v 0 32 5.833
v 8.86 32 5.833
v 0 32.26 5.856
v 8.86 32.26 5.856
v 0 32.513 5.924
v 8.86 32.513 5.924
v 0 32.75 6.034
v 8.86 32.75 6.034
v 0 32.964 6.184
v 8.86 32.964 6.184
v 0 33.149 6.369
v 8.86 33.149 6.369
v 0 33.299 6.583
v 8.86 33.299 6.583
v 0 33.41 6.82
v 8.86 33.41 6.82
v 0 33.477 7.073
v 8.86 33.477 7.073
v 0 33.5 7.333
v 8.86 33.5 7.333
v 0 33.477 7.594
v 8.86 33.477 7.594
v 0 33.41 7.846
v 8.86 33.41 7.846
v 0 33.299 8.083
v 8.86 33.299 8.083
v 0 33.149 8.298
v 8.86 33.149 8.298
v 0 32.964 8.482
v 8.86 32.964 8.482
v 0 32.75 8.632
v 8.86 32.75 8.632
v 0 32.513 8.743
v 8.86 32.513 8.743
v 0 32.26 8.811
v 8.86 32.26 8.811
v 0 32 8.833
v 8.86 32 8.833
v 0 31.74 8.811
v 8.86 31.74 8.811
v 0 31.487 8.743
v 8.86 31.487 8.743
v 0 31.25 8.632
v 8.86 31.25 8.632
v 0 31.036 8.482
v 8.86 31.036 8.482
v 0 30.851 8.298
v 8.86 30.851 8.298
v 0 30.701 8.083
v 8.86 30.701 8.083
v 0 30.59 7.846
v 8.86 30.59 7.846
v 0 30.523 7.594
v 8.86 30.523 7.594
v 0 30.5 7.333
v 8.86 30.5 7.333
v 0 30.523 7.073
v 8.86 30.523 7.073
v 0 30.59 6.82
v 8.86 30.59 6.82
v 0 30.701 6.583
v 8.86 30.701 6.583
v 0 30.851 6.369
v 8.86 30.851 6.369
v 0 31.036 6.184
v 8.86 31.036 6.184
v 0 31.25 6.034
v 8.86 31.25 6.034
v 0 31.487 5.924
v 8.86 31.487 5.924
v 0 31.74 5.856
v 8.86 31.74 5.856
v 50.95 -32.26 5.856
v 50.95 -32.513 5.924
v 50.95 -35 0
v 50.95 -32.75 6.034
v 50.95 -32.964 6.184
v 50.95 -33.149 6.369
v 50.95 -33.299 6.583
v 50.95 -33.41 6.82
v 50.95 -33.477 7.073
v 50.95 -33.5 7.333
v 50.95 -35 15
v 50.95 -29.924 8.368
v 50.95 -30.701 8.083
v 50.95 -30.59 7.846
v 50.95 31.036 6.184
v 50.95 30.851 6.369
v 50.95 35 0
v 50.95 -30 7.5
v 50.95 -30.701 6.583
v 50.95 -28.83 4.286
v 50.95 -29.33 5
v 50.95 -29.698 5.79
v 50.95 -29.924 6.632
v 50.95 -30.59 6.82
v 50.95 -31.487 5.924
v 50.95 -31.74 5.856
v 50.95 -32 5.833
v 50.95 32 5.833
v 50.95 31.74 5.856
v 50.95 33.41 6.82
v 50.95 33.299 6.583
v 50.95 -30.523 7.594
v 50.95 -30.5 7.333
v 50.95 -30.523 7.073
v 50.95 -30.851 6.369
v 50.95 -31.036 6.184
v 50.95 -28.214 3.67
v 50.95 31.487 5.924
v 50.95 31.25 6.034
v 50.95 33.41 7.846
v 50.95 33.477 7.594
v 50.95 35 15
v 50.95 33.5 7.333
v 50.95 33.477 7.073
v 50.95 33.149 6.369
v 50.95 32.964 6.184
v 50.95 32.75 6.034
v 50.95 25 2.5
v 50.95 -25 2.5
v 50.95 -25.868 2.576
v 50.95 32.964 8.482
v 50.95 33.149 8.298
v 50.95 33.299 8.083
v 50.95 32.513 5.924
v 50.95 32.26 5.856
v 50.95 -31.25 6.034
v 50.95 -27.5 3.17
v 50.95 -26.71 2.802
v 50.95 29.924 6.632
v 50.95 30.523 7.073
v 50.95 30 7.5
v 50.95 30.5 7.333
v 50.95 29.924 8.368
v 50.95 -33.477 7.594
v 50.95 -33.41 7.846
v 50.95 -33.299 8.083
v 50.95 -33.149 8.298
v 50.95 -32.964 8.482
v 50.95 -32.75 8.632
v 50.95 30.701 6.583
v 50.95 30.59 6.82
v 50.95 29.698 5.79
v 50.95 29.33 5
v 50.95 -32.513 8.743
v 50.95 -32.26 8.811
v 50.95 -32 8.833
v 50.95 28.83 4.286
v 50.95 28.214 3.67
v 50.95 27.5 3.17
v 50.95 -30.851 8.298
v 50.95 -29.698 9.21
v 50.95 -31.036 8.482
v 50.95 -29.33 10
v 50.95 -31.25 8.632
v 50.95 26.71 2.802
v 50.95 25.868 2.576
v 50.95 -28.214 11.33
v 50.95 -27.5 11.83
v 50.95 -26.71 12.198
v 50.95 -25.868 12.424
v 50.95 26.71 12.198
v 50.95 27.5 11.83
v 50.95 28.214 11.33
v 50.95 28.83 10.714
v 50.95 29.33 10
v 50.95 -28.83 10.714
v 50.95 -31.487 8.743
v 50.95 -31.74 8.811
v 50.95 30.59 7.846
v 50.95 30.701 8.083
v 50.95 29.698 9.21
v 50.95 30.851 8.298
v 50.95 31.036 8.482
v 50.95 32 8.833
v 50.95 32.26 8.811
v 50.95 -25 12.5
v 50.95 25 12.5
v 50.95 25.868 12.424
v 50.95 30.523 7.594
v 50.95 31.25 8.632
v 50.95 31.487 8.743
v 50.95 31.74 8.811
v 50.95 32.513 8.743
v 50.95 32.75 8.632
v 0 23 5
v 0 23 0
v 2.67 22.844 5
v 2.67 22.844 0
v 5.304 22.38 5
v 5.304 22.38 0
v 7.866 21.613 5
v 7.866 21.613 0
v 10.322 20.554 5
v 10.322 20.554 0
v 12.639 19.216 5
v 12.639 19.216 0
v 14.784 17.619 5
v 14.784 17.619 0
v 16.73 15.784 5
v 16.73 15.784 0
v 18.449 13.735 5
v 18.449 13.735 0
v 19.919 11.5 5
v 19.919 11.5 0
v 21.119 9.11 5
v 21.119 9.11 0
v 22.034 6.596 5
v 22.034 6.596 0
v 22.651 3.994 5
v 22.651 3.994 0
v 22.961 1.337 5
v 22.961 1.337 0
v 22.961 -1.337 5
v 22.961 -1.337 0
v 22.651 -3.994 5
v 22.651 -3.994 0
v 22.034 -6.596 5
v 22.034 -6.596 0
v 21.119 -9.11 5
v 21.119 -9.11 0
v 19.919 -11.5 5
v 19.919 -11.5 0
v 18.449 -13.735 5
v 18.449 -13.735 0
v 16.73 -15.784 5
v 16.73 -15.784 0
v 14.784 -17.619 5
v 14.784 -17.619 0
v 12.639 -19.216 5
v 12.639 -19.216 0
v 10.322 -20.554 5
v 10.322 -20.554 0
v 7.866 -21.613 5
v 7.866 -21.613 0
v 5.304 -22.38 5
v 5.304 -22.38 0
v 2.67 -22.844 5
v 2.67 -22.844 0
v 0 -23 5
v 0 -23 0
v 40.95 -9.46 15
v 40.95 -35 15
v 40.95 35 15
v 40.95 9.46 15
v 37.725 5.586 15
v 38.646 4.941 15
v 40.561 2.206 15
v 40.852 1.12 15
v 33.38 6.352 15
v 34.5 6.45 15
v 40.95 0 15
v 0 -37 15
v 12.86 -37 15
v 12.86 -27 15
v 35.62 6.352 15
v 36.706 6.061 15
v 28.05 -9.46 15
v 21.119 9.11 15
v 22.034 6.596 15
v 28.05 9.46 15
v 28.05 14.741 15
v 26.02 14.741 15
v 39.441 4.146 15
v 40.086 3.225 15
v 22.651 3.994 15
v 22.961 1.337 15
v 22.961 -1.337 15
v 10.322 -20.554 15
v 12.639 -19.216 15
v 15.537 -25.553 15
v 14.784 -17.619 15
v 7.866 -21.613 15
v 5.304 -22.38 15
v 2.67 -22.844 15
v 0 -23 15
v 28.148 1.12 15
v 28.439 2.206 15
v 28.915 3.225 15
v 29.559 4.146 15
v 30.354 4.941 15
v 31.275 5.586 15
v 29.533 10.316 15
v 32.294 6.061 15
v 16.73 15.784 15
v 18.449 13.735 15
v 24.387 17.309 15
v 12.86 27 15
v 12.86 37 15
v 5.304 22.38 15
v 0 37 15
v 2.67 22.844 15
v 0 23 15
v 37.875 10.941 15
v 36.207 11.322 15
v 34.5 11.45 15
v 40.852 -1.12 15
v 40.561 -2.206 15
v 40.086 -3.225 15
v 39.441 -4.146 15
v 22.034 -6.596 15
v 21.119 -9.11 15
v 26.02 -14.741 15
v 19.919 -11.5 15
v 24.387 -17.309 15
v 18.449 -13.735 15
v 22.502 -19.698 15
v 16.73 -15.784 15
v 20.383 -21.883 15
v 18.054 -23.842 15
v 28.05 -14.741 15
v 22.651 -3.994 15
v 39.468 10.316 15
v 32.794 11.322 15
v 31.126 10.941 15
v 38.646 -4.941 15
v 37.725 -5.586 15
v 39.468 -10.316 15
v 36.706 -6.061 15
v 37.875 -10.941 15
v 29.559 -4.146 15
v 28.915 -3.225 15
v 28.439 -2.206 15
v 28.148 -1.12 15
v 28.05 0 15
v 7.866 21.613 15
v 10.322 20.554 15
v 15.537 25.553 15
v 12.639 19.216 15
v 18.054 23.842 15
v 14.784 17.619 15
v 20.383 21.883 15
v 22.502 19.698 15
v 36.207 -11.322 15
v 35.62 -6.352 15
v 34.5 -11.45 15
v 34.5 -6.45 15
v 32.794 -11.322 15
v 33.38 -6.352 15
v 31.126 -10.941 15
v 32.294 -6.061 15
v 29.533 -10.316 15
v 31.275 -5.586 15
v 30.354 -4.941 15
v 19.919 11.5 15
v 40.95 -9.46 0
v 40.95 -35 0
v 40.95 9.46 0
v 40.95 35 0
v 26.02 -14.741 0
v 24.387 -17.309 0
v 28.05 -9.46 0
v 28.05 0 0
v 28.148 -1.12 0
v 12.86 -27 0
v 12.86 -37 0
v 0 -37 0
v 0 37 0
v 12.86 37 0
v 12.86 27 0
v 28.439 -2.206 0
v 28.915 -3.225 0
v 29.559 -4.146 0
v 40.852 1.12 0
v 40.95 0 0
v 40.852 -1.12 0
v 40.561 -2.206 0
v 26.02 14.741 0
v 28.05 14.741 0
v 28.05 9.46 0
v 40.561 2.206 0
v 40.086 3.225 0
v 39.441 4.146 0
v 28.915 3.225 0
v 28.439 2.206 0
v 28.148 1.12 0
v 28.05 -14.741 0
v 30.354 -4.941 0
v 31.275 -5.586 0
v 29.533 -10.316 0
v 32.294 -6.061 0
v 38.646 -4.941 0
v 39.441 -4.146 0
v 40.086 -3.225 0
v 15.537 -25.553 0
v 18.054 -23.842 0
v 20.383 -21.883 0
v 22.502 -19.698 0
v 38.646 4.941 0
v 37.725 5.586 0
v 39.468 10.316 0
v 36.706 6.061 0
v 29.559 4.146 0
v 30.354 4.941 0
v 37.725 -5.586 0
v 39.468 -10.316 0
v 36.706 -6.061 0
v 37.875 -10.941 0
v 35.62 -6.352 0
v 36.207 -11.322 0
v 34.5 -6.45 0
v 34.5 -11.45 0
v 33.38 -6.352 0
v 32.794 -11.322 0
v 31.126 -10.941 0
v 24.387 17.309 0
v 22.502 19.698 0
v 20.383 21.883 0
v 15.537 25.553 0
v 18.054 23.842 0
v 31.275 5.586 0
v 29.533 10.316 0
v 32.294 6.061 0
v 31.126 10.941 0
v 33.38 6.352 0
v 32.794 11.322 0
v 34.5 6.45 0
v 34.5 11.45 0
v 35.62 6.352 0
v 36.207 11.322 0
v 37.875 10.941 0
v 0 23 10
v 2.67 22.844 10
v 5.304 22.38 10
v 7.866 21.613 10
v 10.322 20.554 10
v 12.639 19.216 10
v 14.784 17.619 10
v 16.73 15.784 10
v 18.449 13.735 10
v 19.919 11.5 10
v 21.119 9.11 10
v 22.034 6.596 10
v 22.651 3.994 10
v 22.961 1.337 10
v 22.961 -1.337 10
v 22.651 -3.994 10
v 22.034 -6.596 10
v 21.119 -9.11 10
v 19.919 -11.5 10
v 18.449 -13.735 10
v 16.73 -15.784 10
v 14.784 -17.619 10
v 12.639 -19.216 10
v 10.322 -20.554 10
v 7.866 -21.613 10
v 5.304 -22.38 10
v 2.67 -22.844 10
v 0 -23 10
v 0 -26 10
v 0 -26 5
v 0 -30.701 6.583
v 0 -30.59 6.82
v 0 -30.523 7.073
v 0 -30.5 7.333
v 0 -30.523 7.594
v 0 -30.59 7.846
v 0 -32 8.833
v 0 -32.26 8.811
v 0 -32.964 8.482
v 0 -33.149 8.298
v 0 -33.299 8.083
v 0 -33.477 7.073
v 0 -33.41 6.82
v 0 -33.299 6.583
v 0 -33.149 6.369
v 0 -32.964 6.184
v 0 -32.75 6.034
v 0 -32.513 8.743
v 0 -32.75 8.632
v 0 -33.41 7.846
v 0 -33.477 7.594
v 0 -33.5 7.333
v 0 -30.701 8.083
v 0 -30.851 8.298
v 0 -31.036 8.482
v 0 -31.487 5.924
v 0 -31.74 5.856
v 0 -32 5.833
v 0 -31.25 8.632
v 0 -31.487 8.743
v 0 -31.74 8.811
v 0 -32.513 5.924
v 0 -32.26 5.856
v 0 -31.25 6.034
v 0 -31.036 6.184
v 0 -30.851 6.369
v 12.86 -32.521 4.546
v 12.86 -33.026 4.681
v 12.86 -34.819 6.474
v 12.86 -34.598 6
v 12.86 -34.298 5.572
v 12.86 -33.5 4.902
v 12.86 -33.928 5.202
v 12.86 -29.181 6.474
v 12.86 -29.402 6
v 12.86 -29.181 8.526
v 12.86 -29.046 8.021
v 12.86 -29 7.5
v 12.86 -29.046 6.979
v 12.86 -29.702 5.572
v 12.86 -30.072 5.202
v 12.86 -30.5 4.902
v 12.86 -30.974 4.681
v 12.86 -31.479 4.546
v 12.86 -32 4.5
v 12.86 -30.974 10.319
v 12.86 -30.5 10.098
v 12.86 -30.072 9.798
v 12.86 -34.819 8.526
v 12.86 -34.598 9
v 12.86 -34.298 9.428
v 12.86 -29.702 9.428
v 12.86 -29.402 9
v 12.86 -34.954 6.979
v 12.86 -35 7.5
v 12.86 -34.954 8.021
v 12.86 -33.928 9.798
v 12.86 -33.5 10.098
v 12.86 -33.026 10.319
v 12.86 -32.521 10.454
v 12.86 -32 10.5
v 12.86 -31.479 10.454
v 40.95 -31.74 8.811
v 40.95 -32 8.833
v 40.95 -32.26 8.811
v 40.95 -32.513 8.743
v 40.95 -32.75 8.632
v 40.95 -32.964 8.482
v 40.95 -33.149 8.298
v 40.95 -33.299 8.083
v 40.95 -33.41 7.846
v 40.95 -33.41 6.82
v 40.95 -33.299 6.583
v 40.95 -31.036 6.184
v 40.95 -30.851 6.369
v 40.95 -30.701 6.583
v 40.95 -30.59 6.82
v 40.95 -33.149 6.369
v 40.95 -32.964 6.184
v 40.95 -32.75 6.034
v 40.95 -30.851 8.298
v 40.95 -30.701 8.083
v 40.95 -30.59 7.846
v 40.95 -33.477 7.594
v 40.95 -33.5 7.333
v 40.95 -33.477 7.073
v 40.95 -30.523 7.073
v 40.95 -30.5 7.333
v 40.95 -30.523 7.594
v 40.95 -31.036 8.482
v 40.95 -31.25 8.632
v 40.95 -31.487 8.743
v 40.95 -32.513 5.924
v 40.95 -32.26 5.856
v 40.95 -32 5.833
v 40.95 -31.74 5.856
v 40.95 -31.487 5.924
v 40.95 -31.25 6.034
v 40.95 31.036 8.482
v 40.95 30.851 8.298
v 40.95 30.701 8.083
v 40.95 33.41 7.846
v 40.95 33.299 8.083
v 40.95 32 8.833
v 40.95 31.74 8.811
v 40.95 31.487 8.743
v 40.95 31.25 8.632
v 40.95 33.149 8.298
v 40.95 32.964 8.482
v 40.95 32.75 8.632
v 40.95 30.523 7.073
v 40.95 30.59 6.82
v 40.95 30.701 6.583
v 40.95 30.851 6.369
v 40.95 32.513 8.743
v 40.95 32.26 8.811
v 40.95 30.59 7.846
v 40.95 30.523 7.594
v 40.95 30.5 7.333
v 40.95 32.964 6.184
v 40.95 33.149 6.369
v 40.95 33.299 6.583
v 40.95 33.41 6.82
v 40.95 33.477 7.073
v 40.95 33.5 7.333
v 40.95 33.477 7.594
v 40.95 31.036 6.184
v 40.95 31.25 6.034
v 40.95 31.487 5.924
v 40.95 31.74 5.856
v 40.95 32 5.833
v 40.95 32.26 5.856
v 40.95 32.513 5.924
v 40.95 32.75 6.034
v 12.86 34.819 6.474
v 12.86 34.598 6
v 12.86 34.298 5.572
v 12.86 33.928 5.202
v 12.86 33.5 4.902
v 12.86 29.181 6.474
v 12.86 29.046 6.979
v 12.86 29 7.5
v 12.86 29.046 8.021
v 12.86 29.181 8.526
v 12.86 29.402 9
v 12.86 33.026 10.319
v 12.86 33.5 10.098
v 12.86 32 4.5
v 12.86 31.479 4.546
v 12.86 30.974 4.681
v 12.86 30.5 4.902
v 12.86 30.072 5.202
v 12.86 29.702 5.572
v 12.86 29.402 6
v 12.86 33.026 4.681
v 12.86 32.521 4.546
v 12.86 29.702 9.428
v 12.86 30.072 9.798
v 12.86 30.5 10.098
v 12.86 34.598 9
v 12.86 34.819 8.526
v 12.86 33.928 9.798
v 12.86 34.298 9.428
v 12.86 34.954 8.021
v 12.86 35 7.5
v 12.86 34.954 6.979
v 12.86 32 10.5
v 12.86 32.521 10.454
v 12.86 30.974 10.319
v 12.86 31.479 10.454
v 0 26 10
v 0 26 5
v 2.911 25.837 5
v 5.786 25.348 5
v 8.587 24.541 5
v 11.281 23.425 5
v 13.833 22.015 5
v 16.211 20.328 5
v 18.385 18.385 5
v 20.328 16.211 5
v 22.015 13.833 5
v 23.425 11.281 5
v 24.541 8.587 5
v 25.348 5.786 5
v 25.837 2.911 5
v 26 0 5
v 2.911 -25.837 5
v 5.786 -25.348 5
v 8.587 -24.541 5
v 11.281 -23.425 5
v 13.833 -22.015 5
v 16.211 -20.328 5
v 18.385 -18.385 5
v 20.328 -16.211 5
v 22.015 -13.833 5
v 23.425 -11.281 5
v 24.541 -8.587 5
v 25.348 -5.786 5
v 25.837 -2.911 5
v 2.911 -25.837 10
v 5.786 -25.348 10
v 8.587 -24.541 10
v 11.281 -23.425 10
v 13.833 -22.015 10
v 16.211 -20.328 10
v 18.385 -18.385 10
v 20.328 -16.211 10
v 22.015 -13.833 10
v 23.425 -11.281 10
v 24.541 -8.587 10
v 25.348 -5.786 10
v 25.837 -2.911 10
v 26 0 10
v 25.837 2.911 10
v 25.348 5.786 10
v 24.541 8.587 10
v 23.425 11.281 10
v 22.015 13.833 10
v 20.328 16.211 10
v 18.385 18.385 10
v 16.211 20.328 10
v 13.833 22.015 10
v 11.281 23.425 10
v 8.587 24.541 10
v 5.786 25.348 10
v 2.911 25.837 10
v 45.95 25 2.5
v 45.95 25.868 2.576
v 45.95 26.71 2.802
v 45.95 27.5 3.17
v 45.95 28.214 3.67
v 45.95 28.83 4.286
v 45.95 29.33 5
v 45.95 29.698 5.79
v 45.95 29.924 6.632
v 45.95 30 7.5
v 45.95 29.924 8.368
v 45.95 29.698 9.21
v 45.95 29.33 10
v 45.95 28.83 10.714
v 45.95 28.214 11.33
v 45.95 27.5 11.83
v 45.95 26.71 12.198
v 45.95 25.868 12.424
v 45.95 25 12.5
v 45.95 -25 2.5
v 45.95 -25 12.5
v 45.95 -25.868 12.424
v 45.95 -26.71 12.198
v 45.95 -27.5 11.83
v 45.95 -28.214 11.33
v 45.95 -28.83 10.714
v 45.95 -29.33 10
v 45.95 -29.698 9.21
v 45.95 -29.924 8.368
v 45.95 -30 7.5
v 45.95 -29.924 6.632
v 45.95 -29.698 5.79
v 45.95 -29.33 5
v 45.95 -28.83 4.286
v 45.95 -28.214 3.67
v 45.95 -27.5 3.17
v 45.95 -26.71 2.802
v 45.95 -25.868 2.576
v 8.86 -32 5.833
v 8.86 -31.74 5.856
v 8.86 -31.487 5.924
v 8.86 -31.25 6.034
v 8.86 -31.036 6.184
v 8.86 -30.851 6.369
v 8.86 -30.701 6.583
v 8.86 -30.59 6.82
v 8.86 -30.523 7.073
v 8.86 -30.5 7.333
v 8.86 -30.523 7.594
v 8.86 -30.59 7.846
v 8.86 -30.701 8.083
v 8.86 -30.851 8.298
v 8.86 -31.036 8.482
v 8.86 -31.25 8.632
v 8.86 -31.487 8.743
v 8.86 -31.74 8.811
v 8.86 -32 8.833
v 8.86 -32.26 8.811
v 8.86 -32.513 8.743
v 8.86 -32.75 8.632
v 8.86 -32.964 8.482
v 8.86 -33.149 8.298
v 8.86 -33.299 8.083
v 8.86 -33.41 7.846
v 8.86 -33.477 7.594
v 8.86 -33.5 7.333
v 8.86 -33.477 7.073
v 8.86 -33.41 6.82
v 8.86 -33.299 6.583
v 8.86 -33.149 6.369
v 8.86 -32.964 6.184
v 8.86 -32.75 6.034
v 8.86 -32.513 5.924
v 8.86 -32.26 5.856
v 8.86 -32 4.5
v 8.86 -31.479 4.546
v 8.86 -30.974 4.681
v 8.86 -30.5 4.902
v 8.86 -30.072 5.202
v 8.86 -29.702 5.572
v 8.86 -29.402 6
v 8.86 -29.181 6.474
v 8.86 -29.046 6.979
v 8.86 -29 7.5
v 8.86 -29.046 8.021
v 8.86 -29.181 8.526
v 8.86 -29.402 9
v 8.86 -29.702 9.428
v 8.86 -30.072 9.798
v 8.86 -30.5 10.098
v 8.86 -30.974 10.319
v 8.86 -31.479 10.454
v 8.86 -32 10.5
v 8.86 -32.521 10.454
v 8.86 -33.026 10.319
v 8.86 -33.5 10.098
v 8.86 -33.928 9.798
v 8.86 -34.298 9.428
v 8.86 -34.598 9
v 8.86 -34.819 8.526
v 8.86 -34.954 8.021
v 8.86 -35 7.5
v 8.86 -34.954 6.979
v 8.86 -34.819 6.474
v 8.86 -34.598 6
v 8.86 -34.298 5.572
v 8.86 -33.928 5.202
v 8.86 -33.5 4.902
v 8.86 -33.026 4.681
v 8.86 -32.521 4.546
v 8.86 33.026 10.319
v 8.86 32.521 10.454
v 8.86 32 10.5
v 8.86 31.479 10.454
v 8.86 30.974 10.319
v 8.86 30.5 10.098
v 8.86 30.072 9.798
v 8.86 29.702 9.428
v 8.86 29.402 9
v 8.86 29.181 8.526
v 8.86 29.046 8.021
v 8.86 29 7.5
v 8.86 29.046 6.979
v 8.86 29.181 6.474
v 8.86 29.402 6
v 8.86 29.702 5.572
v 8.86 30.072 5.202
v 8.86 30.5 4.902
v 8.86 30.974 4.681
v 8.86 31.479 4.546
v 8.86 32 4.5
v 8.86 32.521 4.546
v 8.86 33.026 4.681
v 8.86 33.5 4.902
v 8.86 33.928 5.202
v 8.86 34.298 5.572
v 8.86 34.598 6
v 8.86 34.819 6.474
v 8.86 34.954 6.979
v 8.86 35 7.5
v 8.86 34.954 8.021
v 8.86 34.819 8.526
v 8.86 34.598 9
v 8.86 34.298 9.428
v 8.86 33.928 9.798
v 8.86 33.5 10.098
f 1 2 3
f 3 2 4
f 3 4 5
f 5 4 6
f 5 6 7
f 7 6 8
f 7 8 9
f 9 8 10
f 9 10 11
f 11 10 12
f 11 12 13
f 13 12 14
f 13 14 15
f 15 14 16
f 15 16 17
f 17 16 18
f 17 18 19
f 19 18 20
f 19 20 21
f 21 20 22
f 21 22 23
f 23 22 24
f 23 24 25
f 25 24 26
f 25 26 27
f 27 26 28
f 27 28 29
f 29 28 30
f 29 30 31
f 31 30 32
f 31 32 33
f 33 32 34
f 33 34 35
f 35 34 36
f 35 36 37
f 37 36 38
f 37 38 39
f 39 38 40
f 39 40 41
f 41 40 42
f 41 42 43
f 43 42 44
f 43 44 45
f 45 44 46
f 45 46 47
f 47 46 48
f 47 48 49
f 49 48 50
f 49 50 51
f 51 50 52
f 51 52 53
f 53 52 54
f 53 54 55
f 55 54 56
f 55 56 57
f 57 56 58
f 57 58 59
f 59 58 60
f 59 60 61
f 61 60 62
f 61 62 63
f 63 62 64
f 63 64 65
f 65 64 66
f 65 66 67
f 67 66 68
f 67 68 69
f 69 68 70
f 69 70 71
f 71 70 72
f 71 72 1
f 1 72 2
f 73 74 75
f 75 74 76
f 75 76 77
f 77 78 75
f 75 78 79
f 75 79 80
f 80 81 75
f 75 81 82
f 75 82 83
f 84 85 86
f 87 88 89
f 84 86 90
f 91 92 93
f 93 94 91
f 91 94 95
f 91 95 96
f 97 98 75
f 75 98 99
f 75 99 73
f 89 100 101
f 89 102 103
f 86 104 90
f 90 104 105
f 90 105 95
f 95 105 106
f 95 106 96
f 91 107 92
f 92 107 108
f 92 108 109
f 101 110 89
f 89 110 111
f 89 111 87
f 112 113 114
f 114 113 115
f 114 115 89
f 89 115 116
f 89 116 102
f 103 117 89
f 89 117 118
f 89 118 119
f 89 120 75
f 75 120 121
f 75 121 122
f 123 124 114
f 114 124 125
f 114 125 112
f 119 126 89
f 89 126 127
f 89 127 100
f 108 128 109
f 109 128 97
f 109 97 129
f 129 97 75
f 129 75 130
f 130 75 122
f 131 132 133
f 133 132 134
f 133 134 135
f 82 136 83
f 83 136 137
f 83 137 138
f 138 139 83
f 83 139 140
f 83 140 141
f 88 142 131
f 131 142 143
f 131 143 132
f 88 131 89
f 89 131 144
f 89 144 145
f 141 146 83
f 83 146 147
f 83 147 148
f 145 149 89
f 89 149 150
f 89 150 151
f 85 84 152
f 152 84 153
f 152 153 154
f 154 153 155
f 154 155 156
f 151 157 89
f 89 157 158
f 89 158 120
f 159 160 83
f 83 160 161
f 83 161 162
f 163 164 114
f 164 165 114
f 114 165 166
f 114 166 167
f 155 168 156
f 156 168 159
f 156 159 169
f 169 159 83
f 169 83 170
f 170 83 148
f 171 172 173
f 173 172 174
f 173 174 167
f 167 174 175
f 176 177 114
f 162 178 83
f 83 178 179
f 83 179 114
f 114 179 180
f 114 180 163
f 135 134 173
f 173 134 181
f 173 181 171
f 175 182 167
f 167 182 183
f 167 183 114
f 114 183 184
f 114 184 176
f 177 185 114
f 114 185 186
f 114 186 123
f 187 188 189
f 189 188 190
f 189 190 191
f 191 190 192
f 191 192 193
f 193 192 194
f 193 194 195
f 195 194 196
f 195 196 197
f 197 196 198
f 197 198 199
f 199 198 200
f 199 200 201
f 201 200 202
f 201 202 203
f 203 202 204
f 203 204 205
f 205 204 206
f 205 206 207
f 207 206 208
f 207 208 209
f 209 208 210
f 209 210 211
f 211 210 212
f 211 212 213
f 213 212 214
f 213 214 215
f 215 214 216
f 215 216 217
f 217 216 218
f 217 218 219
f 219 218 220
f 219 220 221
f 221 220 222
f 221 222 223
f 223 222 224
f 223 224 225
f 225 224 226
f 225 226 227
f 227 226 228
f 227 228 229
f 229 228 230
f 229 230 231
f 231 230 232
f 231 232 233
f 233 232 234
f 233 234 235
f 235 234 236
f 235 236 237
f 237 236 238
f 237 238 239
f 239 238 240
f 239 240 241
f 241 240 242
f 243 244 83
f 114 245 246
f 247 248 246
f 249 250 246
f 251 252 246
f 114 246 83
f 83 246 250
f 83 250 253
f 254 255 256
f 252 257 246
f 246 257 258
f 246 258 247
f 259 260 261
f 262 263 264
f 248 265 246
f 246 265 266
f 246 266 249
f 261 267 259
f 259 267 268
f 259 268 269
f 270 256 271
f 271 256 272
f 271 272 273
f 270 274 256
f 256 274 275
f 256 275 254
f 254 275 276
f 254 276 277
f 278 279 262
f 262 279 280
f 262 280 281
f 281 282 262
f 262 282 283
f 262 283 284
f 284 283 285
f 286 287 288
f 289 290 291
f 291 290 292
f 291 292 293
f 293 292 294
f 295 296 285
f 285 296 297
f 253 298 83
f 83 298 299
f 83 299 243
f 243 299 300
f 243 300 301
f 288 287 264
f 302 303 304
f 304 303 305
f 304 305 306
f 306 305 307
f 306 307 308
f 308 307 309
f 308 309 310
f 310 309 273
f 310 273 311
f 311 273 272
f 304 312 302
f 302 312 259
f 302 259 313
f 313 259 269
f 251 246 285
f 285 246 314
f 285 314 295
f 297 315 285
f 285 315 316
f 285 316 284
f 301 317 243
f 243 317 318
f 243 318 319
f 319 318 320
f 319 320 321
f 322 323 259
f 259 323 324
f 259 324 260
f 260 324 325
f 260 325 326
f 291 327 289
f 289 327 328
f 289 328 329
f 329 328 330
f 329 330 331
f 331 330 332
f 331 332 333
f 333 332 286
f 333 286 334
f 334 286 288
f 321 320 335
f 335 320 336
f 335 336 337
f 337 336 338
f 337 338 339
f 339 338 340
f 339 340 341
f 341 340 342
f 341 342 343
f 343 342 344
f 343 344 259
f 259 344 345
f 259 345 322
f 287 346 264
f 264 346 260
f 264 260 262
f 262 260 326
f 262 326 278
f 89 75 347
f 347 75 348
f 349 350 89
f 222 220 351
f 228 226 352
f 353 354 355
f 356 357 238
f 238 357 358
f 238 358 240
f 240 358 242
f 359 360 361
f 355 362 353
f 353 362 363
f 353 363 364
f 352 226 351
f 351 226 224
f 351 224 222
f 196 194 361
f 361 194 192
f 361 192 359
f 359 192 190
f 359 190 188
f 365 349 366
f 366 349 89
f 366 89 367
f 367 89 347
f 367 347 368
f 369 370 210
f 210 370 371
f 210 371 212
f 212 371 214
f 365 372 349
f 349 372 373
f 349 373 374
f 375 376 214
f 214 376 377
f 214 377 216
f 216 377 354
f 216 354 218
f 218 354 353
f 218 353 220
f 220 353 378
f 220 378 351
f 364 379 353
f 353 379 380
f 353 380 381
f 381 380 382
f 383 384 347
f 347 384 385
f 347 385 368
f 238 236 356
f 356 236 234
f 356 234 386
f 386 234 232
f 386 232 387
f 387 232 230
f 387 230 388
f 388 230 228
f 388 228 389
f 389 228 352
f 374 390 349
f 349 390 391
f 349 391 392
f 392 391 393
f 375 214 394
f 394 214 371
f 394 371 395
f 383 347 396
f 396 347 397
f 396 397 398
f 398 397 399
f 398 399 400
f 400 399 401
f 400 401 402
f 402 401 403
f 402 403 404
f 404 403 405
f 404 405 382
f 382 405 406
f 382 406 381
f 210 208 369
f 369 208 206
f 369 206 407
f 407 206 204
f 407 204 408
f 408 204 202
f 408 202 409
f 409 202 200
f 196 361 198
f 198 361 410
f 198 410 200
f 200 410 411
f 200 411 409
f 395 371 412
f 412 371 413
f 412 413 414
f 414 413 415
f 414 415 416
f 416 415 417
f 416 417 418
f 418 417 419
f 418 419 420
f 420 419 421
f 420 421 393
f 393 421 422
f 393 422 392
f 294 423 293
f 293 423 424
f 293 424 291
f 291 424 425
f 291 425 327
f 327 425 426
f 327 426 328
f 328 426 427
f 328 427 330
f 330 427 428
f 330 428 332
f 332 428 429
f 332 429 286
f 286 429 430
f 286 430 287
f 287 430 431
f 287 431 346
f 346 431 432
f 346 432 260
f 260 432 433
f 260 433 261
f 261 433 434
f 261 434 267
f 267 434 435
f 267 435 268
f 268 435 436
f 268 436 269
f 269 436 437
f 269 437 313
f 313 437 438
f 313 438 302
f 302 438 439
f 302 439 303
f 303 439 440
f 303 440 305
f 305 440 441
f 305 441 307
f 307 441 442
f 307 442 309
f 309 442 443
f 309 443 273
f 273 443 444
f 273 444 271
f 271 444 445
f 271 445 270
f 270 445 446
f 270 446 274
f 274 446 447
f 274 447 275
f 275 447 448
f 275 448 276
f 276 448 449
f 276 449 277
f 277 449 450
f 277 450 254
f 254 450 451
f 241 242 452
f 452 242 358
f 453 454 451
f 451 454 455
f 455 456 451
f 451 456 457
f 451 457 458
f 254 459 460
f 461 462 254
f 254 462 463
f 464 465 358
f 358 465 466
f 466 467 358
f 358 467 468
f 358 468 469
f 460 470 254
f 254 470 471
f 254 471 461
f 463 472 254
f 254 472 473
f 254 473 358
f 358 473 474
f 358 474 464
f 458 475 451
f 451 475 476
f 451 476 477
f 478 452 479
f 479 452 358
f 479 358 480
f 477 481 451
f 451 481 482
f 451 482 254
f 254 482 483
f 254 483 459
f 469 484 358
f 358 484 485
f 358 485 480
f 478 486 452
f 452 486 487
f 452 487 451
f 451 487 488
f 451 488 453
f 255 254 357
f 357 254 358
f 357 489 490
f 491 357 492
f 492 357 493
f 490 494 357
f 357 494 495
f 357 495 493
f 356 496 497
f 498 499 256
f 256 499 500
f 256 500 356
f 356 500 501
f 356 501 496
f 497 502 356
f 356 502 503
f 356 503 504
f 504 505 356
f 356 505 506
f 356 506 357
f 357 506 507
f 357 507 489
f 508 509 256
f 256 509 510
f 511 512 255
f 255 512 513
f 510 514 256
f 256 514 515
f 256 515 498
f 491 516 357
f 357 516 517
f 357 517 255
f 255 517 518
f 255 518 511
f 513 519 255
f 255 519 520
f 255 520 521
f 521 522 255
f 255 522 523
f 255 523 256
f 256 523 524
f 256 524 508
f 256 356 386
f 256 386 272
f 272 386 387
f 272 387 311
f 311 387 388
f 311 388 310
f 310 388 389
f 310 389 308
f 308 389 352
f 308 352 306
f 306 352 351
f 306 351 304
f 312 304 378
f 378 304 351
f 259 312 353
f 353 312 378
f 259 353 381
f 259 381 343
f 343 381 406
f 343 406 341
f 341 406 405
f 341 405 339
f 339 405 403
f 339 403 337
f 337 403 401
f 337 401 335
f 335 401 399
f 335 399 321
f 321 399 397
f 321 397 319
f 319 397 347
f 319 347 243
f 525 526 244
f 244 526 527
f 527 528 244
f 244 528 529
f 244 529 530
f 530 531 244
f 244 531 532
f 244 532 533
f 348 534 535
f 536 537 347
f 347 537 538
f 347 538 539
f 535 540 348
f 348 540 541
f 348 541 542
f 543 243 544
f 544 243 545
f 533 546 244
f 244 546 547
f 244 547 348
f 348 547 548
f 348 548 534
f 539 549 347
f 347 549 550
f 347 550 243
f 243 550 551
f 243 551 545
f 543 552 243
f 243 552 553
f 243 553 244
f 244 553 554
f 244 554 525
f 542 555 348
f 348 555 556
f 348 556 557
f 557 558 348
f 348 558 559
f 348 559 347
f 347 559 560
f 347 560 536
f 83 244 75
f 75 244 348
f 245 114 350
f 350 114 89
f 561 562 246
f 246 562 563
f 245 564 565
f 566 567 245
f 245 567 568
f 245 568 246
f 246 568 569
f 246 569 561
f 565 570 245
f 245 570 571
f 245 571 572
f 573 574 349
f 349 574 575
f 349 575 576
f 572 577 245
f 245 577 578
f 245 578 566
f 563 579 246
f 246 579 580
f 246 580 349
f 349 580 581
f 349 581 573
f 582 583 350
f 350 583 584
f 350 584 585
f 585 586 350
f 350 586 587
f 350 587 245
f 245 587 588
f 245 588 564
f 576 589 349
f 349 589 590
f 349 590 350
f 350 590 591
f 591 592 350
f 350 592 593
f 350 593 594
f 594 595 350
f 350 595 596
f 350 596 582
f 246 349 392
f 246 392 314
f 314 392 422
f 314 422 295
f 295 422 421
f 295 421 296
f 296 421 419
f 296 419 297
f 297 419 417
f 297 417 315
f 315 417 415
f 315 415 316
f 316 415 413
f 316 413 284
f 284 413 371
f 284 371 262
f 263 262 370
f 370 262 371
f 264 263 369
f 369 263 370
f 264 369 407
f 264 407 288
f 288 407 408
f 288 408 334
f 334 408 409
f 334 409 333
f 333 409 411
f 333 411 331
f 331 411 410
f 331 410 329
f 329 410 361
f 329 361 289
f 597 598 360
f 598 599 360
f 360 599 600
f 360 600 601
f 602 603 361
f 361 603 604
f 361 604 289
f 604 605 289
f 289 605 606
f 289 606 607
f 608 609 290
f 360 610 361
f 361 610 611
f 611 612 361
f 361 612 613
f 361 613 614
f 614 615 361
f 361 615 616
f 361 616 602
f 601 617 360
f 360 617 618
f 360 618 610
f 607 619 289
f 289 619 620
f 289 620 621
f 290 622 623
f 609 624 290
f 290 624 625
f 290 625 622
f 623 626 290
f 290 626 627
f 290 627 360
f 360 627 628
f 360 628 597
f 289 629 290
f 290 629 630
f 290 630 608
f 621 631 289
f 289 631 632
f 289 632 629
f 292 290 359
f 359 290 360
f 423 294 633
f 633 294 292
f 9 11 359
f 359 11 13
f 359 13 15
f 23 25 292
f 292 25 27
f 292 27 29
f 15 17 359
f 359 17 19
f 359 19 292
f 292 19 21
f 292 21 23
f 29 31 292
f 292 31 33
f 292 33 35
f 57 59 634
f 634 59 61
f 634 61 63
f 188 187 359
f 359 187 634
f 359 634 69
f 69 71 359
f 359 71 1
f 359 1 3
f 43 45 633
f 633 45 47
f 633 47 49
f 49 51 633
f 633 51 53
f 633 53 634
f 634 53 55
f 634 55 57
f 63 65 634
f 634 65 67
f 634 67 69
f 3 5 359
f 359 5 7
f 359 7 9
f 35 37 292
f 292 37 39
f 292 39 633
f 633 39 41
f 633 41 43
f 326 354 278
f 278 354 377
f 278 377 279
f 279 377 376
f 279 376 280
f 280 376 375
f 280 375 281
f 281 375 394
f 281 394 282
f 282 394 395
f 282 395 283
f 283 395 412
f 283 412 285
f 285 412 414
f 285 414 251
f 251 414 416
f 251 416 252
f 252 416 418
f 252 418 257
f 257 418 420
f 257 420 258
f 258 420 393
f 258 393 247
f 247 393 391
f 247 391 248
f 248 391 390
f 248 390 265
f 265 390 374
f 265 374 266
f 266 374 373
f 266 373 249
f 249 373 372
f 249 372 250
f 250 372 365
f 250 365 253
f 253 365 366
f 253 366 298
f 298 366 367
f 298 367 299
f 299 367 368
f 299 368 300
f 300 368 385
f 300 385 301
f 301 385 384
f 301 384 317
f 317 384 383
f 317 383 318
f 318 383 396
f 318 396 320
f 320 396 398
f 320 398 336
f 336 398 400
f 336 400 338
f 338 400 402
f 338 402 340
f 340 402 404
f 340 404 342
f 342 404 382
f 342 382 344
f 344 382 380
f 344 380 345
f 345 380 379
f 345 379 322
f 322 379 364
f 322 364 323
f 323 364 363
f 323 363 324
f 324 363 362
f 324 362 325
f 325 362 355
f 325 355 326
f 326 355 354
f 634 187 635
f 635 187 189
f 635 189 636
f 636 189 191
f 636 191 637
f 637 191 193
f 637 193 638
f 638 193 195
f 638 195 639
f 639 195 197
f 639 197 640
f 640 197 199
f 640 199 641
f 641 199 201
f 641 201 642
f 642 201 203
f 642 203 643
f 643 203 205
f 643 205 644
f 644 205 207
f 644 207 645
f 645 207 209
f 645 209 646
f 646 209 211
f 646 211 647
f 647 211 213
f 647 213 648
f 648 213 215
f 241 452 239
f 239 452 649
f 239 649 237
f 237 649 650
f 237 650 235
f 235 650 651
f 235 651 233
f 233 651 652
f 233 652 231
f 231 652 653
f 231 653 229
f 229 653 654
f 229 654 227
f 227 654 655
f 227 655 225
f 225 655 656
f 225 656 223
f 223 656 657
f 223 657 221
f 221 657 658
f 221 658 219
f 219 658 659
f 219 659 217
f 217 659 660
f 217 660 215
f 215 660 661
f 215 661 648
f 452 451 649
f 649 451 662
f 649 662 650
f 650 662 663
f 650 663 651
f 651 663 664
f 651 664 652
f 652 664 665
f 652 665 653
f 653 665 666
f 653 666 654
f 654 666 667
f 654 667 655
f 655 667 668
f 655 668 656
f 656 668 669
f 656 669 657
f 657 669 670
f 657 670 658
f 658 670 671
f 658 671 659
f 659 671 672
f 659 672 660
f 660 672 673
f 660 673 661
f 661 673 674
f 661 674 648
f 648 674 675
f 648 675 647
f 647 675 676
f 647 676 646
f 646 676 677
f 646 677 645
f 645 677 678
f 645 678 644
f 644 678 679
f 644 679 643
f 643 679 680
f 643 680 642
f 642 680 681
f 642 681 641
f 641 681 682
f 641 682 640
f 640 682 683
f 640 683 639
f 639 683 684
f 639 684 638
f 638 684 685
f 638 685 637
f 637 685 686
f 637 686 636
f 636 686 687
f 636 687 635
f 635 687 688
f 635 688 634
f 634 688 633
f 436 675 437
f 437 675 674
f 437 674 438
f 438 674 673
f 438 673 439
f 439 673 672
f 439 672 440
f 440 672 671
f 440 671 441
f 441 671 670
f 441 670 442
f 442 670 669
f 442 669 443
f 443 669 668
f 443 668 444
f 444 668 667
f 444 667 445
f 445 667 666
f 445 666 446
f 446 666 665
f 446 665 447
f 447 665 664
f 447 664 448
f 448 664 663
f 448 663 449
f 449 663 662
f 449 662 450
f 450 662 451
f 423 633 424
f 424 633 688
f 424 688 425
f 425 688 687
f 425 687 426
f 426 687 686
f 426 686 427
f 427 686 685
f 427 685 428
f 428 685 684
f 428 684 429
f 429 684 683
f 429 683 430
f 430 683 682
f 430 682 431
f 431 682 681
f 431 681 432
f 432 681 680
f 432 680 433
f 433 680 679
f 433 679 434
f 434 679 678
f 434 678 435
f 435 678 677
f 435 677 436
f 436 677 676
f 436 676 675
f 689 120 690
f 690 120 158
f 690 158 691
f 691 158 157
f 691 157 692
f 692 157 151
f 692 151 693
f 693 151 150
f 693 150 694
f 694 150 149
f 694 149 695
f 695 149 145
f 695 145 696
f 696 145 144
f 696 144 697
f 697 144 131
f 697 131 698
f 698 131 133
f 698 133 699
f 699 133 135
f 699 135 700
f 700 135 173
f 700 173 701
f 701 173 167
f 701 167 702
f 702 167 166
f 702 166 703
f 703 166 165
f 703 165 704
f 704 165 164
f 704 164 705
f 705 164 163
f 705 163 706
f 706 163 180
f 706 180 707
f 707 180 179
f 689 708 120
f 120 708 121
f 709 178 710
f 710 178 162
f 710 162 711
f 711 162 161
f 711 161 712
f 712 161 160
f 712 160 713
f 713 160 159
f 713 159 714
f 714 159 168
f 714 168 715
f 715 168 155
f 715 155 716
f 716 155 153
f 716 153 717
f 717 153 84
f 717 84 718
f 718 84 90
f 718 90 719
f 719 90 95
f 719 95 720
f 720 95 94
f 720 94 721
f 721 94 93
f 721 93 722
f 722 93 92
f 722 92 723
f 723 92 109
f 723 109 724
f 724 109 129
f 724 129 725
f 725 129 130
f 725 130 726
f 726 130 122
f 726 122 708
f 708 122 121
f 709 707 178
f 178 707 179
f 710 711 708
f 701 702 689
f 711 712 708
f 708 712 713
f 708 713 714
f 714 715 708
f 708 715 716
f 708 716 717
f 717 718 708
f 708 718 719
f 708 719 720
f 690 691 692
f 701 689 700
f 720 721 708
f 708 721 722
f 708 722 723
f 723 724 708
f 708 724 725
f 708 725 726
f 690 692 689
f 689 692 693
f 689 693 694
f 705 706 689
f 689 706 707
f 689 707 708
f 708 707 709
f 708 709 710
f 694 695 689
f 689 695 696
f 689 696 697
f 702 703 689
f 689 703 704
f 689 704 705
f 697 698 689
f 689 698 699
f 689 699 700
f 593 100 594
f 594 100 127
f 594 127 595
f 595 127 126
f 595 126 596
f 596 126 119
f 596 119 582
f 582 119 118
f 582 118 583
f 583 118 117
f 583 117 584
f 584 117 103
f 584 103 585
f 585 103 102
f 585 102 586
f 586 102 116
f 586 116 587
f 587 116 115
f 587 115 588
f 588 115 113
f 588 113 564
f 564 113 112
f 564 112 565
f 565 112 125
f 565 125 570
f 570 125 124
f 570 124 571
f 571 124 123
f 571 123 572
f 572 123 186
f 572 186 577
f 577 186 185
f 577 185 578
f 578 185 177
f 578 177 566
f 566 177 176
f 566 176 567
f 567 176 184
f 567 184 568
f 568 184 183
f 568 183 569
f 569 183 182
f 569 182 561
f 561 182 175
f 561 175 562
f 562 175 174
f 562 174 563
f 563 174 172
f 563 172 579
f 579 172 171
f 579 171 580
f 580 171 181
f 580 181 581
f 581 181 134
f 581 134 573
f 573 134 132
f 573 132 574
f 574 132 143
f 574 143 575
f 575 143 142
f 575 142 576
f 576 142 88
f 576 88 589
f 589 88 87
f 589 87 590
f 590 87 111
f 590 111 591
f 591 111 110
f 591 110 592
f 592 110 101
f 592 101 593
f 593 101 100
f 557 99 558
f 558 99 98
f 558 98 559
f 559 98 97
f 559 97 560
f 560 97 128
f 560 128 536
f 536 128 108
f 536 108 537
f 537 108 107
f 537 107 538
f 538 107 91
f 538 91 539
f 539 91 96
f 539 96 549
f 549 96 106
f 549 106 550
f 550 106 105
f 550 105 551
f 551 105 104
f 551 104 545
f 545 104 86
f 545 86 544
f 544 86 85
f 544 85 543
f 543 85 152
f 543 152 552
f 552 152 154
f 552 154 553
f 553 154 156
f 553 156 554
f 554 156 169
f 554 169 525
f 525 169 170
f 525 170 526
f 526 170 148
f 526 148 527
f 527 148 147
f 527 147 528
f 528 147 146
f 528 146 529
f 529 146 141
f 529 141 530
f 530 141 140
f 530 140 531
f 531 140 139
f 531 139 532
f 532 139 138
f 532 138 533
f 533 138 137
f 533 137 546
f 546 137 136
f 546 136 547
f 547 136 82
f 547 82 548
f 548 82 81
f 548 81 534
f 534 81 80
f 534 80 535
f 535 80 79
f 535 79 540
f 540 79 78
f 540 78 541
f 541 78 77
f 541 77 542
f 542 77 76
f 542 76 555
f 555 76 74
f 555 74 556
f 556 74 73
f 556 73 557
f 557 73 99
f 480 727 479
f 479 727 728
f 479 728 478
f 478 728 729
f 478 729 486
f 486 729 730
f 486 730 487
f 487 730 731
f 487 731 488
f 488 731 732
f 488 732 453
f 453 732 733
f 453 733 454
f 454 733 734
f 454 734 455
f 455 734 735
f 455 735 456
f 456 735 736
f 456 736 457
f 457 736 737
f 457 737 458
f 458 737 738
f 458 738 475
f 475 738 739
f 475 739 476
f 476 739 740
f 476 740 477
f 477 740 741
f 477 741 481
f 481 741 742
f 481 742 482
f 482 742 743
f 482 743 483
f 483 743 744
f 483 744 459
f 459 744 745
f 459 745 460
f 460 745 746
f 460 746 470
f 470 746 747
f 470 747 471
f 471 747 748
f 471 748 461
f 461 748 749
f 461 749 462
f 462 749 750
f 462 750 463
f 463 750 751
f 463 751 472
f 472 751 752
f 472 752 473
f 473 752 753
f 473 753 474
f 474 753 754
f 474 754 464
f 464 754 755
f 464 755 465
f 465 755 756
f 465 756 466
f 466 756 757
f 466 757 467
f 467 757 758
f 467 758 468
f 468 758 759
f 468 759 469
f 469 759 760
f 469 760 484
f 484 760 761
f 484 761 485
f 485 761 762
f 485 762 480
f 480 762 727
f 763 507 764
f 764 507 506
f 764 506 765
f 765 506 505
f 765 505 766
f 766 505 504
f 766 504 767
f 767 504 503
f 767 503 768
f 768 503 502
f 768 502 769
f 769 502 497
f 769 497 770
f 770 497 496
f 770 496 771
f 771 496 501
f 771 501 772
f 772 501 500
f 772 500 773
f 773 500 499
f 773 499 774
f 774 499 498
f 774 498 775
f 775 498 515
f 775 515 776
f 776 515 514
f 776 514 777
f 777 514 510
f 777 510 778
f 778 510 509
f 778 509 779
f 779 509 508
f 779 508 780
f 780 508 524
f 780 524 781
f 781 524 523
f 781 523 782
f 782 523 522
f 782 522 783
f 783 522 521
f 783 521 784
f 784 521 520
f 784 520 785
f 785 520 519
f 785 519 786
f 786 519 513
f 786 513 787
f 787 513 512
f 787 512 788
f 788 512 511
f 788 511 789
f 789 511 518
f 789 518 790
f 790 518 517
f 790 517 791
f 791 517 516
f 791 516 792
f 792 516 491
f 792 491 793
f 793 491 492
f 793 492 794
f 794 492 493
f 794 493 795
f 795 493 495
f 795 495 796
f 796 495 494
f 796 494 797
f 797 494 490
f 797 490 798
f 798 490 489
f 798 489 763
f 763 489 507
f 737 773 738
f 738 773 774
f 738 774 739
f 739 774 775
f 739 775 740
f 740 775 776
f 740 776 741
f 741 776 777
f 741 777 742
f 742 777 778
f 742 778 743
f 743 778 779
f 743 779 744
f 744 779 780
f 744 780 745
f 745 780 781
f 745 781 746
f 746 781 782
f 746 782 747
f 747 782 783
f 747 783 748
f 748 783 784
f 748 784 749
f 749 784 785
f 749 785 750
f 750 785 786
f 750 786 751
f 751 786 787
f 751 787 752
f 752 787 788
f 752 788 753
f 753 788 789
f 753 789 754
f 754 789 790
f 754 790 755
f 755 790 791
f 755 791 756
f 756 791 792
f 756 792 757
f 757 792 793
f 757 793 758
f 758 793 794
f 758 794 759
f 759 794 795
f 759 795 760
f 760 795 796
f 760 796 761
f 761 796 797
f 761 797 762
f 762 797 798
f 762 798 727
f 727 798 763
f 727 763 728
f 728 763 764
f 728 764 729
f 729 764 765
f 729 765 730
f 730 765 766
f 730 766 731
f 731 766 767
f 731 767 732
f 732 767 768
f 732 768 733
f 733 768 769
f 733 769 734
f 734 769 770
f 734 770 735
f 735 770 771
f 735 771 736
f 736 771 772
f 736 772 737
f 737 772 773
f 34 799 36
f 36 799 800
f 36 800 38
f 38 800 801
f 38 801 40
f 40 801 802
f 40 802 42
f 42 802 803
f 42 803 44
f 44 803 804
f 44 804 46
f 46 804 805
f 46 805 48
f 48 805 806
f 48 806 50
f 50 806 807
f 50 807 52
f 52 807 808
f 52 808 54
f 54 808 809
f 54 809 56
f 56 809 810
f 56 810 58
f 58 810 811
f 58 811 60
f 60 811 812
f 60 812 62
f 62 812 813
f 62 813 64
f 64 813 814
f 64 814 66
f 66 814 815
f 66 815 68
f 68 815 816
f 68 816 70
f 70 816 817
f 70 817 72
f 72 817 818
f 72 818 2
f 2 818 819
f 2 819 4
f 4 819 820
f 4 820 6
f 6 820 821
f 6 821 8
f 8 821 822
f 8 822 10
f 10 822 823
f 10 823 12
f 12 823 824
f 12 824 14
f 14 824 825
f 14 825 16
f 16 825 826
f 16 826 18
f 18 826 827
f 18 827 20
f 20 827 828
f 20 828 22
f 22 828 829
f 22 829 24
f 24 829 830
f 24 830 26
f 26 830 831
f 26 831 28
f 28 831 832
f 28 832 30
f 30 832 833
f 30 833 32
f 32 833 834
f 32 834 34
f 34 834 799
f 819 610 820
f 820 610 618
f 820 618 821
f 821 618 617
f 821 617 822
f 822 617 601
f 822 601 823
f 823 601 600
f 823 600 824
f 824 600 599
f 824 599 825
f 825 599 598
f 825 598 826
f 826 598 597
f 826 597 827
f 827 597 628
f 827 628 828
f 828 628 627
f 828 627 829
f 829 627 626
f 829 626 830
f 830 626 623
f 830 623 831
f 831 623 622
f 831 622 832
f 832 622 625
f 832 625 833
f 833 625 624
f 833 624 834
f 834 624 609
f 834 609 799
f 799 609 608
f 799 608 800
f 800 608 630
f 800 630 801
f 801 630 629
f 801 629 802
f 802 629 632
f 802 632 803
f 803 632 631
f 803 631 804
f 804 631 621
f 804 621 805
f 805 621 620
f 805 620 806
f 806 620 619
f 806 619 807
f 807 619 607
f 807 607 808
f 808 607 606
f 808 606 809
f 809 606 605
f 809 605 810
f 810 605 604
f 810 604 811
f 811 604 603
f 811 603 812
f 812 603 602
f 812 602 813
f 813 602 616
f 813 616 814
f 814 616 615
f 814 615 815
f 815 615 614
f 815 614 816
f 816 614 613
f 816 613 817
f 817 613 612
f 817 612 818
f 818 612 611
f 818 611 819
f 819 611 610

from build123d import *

# Parameters (mm, degrees)
SKETCH1_R               = 6.45
BOSS_EXTRUDE1_DEPTH     = 15
SKETCH2_W               = 5
SKETCH2_H               = 3
CUT_EXTRUDE3_DEPTH      = 5
CUT_EXTRUDE4_DEPTH      = 56.180796325
CUT_EXTRUDE4_DEPTH_BACK = 56.180796325
SKETCH4_R               = 1.5
SKETCH5_R               = 3
CUT_EXTRUDE5_DEPTH      = 4


with BuildPart() as part:
    # Sketch1 → Boss-Extrude1 (new body)
    with BuildSketch(Plane.XY):
        with BuildLine():
            Line((0, 23), (0, 37))
            Line((0, 37), (12.859510911, 37))
            Line((12.859510911, 37), (12.859510911, 27))
            ThreePointArc((12.859510911, 27), (20.383390121, 21.88342816), (26.020458433, 14.741192754))
            Line((26.020458433, 14.741192754), (28.050458433, 14.741192754))
            Line((28.050458433, 14.741192754), (28.050458433, 9.460443964))
            ThreePointArc((28.050458433, 9.460443964), (34.500458433, 11.45), (40.950458433, 9.460443964))
            Line((40.950458433, 9.460443964), (40.950458433, 35))
            Line((40.950458433, 35), (50.950458433, 35))
            Line((50.950458433, 35), (50.950458433, -35))
            Line((50.950458433, -35), (40.950458433, -35))
            Line((40.950458433, -35), (40.950458433, -9.460443964))
            ThreePointArc((40.950458433, -9.460443964), (34.500458433, -11.45), (28.050458433, -9.460443964))
            Line((28.050458433, -9.460443964), (28.050458433, -14.741192754))
            Line((28.050458433, -14.741192754), (26.020458433, -14.741192754))
            ThreePointArc((26.020458433, -14.741192754), (20.383390121, -21.88342816), (12.859510911, -27))
            Line((12.859510911, -27), (12.859510911, -37))
            Line((12.859510911, -37), (0, -37))
            Line((0, -37), (0, -23))
            ThreePointArc((0, -23), (23, 0), (0, 23))
        make_face()
        with Locations(Location((34.500458433, 0, 0), (0, 0, 180))):
            Circle(SKETCH1_R, mode=Mode.SUBTRACT)
    extrude(amount=BOSS_EXTRUDE1_DEPTH)

    # Sketch2 → Cut-Revolve1 (revolve, cut)
    with BuildSketch(Plane.ZY):
        with Locations((7.5, 24.5)):
            Rectangle(SKETCH2_W, SKETCH2_H)
    revolve(axis=Axis((0, 0, 15), (0, 0, -1)), mode=Mode.SUBTRACT)

    # Sketch3 → Cut-Extrude3 (cut)
    with BuildSketch(Plane(origin=(50.950458433, 0, 0), x_dir=(0, 0, -1), z_dir=(1, 0, 0))):
        with BuildLine():
            Line((-12.5, -25), (-12.5, 25))
            ThreePointArc((-12.5, 25), (-7.5, 30), (-2.5, 25))
            Line((-2.5, 25), (-2.5, -25))
            ThreePointArc((-2.5, -25), (-7.5, -30), (-12.5, -25))
        make_face()
    extrude(amount=-CUT_EXTRUDE3_DEPTH, mode=Mode.SUBTRACT)

    # Sketch4 → Cut-Extrude4 (cut, two sides: drawn at the far end of the back side and taken through both)
    with BuildSketch(Plane(origin=(12.859510911, 0, 0), x_dir=(0, 0, -1), z_dir=(1, 0, 0)).offset(-CUT_EXTRUDE4_DEPTH_BACK)):
        with Locations((-7.333431897, 32)):
            Circle(SKETCH4_R)
        with Locations((-7.333431897, -32)):
            Circle(SKETCH4_R)
    extrude(amount=CUT_EXTRUDE4_DEPTH + CUT_EXTRUDE4_DEPTH_BACK, mode=Mode.SUBTRACT)

    # Sketch5 → Cut-Extrude5 (cut)
    with BuildSketch(Plane(origin=(12.859510911, 0, 0), x_dir=(0, 0, -1), z_dir=(1, 0, 0))):
        with Locations((-7.5, 32)):
            Circle(SKETCH5_R)
        with Locations(Location((-7.5, -32, 0), (0, 0, 180))):
            Circle(SKETCH5_R)
    extrude(amount=-CUT_EXTRUDE5_DEPTH, mode=Mode.SUBTRACT)


solid = part.part
